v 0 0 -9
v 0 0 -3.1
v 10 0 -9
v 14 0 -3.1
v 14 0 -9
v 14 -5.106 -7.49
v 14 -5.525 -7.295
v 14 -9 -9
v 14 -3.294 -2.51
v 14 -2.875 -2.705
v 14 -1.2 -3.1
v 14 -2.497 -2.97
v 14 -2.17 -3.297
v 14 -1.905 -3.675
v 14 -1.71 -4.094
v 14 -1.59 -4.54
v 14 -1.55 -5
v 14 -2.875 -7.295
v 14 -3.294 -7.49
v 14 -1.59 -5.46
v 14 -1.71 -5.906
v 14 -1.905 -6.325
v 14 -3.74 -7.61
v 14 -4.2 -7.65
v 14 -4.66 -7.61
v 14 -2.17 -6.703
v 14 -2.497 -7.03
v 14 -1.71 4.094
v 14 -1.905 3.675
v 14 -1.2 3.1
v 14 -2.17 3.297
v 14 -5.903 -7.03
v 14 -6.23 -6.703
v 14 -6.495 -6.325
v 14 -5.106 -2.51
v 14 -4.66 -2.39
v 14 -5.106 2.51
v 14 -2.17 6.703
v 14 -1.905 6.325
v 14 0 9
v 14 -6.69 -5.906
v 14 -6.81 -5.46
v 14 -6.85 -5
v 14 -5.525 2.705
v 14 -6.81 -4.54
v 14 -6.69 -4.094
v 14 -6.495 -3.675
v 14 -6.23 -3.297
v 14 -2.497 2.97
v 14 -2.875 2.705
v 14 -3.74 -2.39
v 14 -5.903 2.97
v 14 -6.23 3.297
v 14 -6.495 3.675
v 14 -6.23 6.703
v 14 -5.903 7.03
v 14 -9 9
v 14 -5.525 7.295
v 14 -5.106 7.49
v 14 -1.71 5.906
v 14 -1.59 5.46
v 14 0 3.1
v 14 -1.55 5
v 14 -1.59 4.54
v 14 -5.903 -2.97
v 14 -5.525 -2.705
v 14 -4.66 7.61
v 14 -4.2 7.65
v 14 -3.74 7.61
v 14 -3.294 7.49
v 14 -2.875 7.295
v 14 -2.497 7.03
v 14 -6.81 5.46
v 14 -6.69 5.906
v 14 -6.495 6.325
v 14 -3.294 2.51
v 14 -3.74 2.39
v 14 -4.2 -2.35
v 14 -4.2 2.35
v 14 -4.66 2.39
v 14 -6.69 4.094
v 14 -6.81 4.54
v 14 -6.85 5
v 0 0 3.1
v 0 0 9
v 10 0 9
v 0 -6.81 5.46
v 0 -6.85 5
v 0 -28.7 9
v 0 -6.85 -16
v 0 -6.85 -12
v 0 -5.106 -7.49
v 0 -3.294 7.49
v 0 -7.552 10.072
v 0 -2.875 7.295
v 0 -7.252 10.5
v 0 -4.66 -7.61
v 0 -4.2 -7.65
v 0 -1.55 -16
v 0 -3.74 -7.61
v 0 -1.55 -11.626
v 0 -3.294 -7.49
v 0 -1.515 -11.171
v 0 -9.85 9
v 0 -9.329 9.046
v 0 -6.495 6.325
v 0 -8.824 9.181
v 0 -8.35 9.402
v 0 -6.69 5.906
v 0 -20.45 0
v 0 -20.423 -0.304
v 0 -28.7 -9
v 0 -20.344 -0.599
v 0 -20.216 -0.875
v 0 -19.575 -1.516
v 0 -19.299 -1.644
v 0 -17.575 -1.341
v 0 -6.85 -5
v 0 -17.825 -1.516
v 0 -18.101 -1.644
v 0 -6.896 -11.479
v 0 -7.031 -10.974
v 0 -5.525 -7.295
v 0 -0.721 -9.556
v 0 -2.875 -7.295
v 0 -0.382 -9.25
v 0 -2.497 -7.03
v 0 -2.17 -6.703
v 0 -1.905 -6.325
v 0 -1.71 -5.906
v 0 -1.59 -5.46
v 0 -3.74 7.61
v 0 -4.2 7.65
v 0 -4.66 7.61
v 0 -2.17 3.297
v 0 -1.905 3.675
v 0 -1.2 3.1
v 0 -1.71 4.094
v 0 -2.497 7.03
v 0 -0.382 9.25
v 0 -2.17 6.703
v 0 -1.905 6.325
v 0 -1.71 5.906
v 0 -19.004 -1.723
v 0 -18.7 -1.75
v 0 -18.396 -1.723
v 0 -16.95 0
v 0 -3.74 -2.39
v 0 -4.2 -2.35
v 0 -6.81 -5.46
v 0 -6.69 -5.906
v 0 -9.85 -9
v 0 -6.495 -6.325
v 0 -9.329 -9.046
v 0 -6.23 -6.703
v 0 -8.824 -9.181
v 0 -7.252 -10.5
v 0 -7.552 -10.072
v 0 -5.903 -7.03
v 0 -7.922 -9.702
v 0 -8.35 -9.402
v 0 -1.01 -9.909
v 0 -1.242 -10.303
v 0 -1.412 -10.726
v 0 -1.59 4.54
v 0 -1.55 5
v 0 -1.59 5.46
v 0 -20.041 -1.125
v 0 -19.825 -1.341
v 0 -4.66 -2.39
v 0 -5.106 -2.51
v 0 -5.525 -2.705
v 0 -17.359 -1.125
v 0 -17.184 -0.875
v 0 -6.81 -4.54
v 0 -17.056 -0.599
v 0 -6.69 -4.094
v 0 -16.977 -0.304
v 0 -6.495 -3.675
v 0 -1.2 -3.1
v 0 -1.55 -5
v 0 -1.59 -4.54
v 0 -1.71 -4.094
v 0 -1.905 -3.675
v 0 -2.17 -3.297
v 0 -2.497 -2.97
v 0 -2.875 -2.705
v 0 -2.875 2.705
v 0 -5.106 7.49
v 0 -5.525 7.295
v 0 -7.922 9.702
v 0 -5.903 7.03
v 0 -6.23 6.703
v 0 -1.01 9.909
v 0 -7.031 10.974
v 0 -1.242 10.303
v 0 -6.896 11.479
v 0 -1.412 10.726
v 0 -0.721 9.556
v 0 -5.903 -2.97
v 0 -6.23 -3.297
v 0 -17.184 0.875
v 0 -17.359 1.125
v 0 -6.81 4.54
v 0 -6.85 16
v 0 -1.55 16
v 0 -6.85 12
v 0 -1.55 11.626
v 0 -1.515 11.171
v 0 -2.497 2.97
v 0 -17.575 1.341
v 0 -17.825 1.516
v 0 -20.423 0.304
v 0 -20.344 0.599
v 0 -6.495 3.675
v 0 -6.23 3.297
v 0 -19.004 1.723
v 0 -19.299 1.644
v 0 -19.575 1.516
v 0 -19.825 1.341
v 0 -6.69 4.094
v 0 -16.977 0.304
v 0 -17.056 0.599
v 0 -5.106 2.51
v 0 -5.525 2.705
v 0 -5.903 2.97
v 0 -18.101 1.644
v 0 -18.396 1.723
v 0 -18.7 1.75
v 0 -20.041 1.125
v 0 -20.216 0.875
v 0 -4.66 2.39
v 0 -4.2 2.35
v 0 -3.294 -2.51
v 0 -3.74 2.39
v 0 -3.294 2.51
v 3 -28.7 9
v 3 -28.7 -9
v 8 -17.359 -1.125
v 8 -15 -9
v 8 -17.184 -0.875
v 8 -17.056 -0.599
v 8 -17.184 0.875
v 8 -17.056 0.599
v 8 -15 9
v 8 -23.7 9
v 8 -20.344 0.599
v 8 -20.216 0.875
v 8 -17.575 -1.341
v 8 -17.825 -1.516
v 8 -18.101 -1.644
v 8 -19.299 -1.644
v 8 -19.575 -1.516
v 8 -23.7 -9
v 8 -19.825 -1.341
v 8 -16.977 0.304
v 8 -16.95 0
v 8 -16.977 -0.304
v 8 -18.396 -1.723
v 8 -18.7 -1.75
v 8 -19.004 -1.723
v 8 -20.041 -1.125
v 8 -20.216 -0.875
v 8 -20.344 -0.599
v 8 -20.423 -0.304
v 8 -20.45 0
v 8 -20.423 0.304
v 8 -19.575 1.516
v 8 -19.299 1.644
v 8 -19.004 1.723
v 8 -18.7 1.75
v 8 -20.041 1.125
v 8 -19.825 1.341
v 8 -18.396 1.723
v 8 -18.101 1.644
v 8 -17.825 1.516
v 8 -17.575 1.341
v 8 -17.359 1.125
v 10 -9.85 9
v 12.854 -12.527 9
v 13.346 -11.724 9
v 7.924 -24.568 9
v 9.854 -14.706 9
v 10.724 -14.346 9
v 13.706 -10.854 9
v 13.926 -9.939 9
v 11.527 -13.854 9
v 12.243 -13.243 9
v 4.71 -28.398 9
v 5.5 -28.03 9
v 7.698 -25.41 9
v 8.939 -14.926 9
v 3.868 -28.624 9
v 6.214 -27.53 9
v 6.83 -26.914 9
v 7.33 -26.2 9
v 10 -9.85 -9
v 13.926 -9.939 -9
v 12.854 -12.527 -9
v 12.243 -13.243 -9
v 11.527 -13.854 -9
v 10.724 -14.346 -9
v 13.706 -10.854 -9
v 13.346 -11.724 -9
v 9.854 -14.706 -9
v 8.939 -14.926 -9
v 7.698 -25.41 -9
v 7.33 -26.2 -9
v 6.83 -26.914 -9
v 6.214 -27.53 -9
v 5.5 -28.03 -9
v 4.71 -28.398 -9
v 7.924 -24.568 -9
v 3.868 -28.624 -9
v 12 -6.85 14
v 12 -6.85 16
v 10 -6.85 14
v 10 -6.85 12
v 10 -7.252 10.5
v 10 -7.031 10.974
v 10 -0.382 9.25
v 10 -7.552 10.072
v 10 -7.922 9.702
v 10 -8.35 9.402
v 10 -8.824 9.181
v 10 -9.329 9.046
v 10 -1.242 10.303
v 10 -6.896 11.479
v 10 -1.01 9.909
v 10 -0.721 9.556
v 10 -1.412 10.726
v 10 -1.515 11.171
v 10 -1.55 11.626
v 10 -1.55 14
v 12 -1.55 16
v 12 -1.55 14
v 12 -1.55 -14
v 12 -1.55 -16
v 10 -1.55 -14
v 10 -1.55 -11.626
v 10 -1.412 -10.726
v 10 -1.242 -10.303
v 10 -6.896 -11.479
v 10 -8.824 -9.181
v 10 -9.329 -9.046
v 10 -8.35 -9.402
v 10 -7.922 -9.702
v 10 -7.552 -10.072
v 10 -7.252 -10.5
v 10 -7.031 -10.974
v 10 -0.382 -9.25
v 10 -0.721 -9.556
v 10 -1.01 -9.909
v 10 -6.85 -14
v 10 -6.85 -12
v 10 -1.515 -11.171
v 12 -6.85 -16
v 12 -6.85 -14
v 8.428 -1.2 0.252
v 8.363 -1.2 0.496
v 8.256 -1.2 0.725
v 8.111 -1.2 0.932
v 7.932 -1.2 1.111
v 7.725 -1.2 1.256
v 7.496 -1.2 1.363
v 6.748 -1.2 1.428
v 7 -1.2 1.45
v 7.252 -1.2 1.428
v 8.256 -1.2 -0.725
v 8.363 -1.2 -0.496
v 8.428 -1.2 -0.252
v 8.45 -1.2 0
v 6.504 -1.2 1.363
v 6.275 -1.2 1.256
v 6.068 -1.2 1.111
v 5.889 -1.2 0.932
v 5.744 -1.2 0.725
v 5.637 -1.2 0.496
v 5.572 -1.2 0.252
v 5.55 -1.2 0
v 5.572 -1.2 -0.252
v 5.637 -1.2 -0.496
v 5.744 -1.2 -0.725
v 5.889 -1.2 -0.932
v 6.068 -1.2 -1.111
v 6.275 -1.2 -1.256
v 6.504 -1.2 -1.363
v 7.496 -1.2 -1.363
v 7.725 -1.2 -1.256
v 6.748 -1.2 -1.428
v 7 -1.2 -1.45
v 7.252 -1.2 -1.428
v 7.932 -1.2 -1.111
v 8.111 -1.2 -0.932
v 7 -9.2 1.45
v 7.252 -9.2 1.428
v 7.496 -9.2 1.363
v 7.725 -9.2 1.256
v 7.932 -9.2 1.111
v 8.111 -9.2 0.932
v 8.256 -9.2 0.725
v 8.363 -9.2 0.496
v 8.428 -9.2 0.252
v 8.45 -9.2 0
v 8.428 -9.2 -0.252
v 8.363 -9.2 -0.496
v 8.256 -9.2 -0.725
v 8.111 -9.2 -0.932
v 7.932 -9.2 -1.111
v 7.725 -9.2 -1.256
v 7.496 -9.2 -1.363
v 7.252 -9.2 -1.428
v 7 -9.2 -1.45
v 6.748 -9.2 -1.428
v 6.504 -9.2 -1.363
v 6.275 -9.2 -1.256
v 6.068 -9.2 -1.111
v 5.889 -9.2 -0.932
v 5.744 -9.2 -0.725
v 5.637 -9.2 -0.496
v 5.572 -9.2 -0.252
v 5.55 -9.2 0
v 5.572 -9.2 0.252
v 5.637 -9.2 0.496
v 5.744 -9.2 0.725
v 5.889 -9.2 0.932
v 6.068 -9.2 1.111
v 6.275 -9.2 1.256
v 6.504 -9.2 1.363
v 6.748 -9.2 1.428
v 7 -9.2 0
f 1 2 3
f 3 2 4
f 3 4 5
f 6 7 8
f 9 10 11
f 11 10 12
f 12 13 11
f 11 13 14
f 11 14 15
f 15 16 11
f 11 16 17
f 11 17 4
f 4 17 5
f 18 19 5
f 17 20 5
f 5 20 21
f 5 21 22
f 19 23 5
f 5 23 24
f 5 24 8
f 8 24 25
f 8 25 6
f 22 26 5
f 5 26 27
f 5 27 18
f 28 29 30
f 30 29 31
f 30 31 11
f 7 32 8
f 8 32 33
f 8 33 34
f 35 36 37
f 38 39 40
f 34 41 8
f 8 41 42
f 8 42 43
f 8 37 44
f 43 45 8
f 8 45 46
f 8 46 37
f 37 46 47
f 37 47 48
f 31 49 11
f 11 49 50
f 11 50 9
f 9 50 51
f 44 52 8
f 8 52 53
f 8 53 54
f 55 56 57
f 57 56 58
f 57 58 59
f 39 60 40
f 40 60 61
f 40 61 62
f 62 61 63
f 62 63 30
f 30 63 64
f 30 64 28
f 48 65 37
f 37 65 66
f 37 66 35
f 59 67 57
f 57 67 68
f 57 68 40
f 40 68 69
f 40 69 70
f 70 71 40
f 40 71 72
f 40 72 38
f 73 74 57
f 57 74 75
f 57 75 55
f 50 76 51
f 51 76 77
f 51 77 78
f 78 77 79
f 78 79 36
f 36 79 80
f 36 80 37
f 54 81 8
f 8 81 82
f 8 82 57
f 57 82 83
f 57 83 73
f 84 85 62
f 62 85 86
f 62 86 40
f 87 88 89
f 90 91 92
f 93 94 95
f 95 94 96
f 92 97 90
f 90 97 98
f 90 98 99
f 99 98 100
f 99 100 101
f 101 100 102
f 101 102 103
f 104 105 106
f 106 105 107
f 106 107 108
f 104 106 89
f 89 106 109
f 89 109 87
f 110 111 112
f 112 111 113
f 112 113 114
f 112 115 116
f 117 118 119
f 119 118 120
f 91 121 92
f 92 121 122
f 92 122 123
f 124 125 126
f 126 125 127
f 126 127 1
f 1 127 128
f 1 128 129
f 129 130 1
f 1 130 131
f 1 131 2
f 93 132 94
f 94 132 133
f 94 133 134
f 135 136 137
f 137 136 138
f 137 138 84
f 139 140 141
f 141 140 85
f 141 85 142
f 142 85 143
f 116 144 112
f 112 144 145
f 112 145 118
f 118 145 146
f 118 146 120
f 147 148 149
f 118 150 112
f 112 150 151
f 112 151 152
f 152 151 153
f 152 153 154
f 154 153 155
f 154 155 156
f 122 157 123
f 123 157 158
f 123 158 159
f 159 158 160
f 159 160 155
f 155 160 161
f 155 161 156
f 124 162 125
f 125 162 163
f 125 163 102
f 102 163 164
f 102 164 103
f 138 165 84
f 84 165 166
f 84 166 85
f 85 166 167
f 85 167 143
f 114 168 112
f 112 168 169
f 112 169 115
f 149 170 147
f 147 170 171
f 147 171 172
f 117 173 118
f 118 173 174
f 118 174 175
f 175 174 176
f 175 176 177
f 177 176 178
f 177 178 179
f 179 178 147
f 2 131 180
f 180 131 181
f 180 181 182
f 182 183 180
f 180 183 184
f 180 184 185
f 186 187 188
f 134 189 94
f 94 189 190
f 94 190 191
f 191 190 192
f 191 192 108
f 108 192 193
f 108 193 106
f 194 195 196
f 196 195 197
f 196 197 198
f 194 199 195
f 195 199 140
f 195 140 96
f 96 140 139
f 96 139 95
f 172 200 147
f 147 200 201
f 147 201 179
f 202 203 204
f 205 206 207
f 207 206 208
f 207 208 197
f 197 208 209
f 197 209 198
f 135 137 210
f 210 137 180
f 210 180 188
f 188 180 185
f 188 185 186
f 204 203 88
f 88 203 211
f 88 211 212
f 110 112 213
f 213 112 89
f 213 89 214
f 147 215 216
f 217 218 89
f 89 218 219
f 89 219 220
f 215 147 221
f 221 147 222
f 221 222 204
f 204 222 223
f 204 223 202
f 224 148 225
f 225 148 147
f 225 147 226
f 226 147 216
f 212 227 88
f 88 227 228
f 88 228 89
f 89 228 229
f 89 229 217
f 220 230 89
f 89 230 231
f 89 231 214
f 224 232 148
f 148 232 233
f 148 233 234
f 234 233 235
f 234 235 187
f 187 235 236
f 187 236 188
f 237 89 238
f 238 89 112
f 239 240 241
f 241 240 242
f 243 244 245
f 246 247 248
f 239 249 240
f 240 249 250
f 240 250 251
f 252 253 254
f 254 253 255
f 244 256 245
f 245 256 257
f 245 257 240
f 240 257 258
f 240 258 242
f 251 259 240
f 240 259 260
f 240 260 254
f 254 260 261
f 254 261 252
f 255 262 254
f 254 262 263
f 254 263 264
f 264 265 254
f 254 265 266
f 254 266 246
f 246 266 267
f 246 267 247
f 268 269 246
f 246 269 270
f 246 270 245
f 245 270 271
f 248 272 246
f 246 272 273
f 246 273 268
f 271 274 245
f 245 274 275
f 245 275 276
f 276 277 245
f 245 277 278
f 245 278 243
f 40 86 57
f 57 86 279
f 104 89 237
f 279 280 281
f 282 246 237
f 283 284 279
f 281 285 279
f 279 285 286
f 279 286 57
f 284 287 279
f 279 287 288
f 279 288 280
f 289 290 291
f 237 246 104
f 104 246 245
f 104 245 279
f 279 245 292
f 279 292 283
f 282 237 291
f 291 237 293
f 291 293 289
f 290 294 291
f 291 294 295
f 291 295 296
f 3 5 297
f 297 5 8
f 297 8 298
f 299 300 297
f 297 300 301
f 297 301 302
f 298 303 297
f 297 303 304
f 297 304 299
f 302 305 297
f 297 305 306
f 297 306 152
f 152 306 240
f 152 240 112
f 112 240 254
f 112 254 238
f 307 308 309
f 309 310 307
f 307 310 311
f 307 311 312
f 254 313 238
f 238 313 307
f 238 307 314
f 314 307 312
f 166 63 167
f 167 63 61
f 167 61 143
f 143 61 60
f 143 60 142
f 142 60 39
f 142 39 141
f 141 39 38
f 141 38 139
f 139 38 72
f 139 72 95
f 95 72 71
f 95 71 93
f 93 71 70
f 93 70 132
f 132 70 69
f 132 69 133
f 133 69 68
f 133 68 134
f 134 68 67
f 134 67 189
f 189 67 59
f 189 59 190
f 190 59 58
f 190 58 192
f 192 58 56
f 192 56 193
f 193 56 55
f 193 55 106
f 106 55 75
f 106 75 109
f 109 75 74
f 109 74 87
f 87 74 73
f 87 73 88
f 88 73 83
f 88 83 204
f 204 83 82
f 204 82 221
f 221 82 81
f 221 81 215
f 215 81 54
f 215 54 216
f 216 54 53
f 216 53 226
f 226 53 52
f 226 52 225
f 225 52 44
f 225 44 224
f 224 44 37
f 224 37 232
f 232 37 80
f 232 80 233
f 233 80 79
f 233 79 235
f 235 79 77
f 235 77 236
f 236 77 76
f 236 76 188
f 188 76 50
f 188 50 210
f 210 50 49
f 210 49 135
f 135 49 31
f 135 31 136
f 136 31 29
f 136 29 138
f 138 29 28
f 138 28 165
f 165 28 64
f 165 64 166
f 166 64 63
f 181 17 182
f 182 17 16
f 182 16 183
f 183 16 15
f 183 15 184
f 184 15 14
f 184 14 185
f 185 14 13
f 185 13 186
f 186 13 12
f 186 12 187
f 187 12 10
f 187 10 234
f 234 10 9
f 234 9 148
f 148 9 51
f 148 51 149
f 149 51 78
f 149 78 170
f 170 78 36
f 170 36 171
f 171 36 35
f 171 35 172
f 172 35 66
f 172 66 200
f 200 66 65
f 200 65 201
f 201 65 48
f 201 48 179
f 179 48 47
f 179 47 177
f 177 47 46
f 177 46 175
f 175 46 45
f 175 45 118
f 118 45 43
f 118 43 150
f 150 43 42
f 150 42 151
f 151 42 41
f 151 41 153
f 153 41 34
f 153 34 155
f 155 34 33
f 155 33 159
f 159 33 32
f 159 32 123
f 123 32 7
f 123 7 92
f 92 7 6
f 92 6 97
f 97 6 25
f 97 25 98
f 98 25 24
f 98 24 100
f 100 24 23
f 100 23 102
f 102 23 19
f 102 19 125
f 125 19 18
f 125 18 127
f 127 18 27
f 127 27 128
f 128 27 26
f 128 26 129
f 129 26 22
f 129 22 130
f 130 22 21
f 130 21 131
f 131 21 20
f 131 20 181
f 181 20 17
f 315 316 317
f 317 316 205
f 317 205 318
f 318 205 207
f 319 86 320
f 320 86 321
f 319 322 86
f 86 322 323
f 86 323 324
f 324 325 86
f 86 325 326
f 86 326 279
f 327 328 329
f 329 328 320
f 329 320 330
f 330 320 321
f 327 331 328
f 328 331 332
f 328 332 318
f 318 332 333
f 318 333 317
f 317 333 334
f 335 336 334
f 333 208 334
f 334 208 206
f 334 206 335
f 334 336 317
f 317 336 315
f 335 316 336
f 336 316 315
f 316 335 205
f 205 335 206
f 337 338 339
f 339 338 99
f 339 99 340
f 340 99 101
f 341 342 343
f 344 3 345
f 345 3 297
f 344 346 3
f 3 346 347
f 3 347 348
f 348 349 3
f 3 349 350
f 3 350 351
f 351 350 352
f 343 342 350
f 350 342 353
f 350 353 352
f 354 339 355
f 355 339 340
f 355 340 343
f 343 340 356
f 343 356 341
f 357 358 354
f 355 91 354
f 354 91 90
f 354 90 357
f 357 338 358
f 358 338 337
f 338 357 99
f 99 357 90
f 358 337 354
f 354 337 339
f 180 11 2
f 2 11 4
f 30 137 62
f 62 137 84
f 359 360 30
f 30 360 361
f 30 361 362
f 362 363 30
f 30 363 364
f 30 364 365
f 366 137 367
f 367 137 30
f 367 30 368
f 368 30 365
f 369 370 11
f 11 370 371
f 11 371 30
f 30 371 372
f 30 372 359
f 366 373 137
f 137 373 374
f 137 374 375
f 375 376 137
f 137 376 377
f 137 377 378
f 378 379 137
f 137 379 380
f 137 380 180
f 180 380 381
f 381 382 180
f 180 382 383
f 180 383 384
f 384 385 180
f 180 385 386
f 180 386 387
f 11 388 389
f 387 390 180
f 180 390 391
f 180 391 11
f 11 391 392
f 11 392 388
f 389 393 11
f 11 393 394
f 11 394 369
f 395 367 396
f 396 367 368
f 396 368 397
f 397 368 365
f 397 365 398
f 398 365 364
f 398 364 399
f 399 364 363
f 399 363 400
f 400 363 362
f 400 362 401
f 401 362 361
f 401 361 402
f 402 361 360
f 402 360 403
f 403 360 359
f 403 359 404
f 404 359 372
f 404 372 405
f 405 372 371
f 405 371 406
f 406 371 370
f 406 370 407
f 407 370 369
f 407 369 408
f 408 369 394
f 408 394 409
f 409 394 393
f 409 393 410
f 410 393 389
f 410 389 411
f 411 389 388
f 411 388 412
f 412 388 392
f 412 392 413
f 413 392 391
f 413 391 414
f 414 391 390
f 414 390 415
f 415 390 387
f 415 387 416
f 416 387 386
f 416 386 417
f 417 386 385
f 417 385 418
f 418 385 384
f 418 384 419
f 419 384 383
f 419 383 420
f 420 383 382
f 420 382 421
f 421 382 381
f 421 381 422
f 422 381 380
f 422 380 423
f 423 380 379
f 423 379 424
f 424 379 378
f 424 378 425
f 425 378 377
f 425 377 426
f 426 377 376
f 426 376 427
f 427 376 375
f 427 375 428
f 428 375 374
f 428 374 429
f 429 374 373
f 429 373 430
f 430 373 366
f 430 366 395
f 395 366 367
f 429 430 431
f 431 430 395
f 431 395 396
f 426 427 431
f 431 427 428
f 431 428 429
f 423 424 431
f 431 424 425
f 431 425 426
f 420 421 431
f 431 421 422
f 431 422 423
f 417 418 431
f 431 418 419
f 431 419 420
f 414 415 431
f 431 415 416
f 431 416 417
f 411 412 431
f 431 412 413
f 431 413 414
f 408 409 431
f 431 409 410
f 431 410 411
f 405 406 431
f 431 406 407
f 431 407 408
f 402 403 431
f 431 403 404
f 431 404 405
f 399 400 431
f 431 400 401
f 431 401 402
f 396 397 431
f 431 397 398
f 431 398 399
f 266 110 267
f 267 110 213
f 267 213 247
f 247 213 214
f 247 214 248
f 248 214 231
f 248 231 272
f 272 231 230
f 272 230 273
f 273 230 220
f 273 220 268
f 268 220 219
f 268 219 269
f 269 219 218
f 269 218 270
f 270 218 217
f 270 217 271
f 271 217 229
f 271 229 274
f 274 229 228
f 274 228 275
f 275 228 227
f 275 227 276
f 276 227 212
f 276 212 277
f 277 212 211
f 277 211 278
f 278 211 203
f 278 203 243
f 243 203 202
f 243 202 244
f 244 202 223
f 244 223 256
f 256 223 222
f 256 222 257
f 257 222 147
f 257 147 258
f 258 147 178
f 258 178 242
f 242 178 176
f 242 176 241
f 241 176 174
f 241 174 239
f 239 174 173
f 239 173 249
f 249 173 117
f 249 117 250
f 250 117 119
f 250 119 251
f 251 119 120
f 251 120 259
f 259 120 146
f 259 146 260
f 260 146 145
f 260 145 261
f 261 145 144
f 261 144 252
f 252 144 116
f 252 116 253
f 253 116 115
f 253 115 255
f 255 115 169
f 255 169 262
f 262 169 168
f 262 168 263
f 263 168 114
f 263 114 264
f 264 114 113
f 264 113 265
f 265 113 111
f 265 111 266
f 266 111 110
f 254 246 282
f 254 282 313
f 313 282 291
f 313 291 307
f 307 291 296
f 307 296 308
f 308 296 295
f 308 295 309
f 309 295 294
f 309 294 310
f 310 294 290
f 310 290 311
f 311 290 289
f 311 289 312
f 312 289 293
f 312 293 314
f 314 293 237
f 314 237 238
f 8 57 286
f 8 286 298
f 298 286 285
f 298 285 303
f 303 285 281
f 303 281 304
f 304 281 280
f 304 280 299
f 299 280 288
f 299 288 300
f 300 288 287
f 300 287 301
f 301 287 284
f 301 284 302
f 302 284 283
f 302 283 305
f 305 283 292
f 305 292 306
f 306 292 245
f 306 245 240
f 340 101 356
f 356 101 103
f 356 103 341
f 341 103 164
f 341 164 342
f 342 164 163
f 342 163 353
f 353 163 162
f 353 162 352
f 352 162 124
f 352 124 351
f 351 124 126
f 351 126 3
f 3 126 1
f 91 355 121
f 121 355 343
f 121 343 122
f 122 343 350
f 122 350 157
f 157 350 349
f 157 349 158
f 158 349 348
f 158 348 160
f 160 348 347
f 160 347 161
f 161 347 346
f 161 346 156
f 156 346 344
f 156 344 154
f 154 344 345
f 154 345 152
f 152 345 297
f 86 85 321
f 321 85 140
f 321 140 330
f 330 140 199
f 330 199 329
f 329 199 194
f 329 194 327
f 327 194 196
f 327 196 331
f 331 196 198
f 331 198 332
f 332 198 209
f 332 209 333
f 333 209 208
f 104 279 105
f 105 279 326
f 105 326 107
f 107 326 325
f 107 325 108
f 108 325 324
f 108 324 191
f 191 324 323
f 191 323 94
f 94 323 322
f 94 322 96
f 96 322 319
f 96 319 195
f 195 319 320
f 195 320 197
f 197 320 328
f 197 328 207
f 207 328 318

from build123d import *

# Parameters (mm, degrees)
SKETCH1_W               = 6
SKETCH1_H               = 15
SKETCH1_W_2             = 8
SKETCH1_H_2             = 28.7
BOSS_EXTRUDE1_DEPTH     = 9
SKETCH2_R               = 2.65
CUT_EXTRUDE1_DEPTH      = 34.176648414
SKETCH5_W               = 10
SKETCH5_H               = 5.3
BOSS_EXTRUDE4_DEPTH     = 5
SKETCH6_W               = 12
SKETCH6_H               = 5.3
BOSS_EXTRUDE5_DEPTH     = 2
SKETCH7_W               = 14
SKETCH7_H               = 6.2
CUT_EXTRUDE2_DEPTH      = 1.2
SKETCH8_R               = 1.45
CUT_EXTRUDE3_DEPTH      = 8
CUT_EXTRUDE4_DEPTH      = 36.716802768
CUT_EXTRUDE4_DEPTH_BACK = 36.716802768
SKETCH9_R               = 1.75
FILLET1_R               = 5
FILLET2_R               = 6
FILLET3_R               = 3


# Some blends are built 0.0001 mm under size
with BuildPart() as part:
    # Sketch1 → Boss-Extrude1 (new, symmetric)
    with BuildSketch(Plane.XY):
        with Locations((11, -7.5)):
            Rectangle(SKETCH1_W, SKETCH1_H)
        with Locations((4, -14.35)):
            Rectangle(SKETCH1_W_2, SKETCH1_H_2)
    extrude(amount=BOSS_EXTRUDE1_DEPTH, both=True)

    # Sketch2 → Cut-Extrude1 (cut, through all)
    with BuildSketch(Plane(origin=(14, 0, 0), x_dir=(0, 0, -1), z_dir=(1, 0, 0))):
        with Locations(Location((5, -4.2, 0), (0, 0, 90))):
            Circle(SKETCH2_R)
        with Locations(Location((-5, -4.2, 0), (0, 0, 90))):
            Circle(SKETCH2_R)
    extrude(amount=-CUT_EXTRUDE1_DEPTH, mode=Mode.SUBTRACT)

    # Sketch5 → Boss-Extrude4 (add)
    with BuildSketch(Plane.XY.offset(9)):
        with Locations((5, -4.2)):
            Rectangle(SKETCH5_W, SKETCH5_H)
    boss_extrude4 = extrude(amount=BOSS_EXTRUDE4_DEPTH)

    # Sketch6 → Boss-Extrude5 (add)
    with BuildSketch(Plane.XY.offset(14)):
        with Locations((6, -4.2)):
            Rectangle(SKETCH6_W, SKETCH6_H)
    boss_extrude5 = extrude(amount=BOSS_EXTRUDE5_DEPTH)

    # Mirror2: Boss-Extrude4, Boss-Extrude5 across plane
    add(boss_extrude4.mirror(Plane.XY))
    add(boss_extrude5.mirror(Plane.XY))

    # Sketch7 → Cut-Extrude2 (cut)
    with BuildSketch(Plane(origin=(0, 0, 0), x_dir=(1, 0, 0), z_dir=(0, 1, 0))):
        with Locations((7, 0)):
            Rectangle(SKETCH7_W, SKETCH7_H)
    extrude(amount=-CUT_EXTRUDE2_DEPTH, mode=Mode.SUBTRACT)

    # Sketch8 → Cut-Extrude3 (cut)
    with BuildSketch(Plane(origin=(0, -1.2, 0), x_dir=(1, 0, 0), z_dir=(0, 1, 0))):
        with Locations(Location((7, 0, 0), (0, 0, 270))):
            Circle(SKETCH8_R)
    extrude(amount=-CUT_EXTRUDE3_DEPTH, mode=Mode.SUBTRACT)

    # Sketch9 → Cut-Extrude4 (cut, two sides: drawn at the far end of the back side and taken through both)
    with BuildSketch(Plane.ZY.offset(-CUT_EXTRUDE4_DEPTH_BACK)):
        with Locations(Location((0, -18.7, 0), (0, 0, 90))):
            Circle(SKETCH9_R)
    extrude(amount=CUT_EXTRUDE4_DEPTH + CUT_EXTRUDE4_DEPTH_BACK, mode=Mode.SUBTRACT)

    # Fillet1
    fillet1_edges = [part.edges().sort_by_distance(p)[0] for p in [
        (8, -28.7, 0),
    ]]
    fillet(fillet1_edges, radius=FILLET1_R)

    # Fillet2
    fillet2_edges = [part.edges().sort_by_distance(p)[0] for p in [
        (14, -15, 0),
    ]]
    fillet(fillet2_edges, radius=FILLET2_R - 0.0001)  # a hair under: the kernel refuses the full size

    # Fillet3
    # the kernel refuses this fillet: 3 mm, written as the material it adds along each edge
    with BuildSketch(Plane(origin=(10, -6.85, 9), x_dir=(0, -1, 0), z_dir=(-1, 0, 0))) as fillet3_piece_1:
        with BuildLine():
            CenterArc((FILLET3_R, FILLET3_R), FILLET3_R, 180, 90)
            Line((0, FILLET3_R), (-FILLET3_R * 0.02, FILLET3_R))
            Line((-FILLET3_R * 0.02, FILLET3_R), (-FILLET3_R * 0.02, -FILLET3_R * 0.02))
            Line((-FILLET3_R * 0.02, -FILLET3_R * 0.02), (FILLET3_R, -FILLET3_R * 0.02))
            Line((FILLET3_R, -FILLET3_R * 0.02), (FILLET3_R, 0))
        make_face()
    extrude(amount=10)
    with BuildSketch(Plane(origin=(0, -1.55, 9), x_dir=(0, 1, 0), z_dir=(1, 0, 0))) as fillet3_piece_2:
        with BuildLine():
            CenterArc((3, 2.626309197), FILLET3_R, 180, 61.09666546)
            Line((0, 2.626309197), (-0.06, 2.626309197))
            Line((-0.06, 2.626309197), (-0.06, 0))
            Line((-0.06, 0), (0, -0.06))
            ThreePointArc((0, -0.06), (0.775, -0.06), (1.521, -0.052526184))
            Line((1.521, -0.052526184), (1.55, 0))
        make_face()
    extrude(amount=10)
    with BuildSketch(Plane(origin=(10, -6.85, -9), x_dir=(0, -1, 0), z_dir=(-1, 0, 0))) as fillet3_piece_3:
        with BuildLine():
            CenterArc((FILLET3_R, -FILLET3_R), FILLET3_R, 90, 90)
            Line((0, -FILLET3_R), (-FILLET3_R * 0.02, -FILLET3_R))
            Line((-FILLET3_R * 0.02, -FILLET3_R), (-FILLET3_R * 0.02, FILLET3_R * 0.02))
            Line((-FILLET3_R * 0.02, FILLET3_R * 0.02), (FILLET3_R, FILLET3_R * 0.02))
            Line((FILLET3_R, FILLET3_R * 0.02), (FILLET3_R, 0))
        make_face()
    extrude(amount=10)
    with BuildSketch(Plane(origin=(0, -1.55, -9), x_dir=(0, 1, 0), z_dir=(1, 0, 0))) as fillet3_piece_4:
        with BuildLine():
            CenterArc((3, -2.626309197), FILLET3_R, 118.90333454, 61.09666546)
            Line((0, -2.626309197), (-0.06, -2.626309197))
            Line((-0.06, -2.626309197), (-0.06, 0))
            Line((-0.06, 0), (0, 0.06))
            ThreePointArc((0, 0.06), (0.775, 0.06), (1.521, 0.052526184))
            Line((1.521, 0.052526184), (1.55, 0))
        make_face()
    extrude(amount=10)


solid = part.part
